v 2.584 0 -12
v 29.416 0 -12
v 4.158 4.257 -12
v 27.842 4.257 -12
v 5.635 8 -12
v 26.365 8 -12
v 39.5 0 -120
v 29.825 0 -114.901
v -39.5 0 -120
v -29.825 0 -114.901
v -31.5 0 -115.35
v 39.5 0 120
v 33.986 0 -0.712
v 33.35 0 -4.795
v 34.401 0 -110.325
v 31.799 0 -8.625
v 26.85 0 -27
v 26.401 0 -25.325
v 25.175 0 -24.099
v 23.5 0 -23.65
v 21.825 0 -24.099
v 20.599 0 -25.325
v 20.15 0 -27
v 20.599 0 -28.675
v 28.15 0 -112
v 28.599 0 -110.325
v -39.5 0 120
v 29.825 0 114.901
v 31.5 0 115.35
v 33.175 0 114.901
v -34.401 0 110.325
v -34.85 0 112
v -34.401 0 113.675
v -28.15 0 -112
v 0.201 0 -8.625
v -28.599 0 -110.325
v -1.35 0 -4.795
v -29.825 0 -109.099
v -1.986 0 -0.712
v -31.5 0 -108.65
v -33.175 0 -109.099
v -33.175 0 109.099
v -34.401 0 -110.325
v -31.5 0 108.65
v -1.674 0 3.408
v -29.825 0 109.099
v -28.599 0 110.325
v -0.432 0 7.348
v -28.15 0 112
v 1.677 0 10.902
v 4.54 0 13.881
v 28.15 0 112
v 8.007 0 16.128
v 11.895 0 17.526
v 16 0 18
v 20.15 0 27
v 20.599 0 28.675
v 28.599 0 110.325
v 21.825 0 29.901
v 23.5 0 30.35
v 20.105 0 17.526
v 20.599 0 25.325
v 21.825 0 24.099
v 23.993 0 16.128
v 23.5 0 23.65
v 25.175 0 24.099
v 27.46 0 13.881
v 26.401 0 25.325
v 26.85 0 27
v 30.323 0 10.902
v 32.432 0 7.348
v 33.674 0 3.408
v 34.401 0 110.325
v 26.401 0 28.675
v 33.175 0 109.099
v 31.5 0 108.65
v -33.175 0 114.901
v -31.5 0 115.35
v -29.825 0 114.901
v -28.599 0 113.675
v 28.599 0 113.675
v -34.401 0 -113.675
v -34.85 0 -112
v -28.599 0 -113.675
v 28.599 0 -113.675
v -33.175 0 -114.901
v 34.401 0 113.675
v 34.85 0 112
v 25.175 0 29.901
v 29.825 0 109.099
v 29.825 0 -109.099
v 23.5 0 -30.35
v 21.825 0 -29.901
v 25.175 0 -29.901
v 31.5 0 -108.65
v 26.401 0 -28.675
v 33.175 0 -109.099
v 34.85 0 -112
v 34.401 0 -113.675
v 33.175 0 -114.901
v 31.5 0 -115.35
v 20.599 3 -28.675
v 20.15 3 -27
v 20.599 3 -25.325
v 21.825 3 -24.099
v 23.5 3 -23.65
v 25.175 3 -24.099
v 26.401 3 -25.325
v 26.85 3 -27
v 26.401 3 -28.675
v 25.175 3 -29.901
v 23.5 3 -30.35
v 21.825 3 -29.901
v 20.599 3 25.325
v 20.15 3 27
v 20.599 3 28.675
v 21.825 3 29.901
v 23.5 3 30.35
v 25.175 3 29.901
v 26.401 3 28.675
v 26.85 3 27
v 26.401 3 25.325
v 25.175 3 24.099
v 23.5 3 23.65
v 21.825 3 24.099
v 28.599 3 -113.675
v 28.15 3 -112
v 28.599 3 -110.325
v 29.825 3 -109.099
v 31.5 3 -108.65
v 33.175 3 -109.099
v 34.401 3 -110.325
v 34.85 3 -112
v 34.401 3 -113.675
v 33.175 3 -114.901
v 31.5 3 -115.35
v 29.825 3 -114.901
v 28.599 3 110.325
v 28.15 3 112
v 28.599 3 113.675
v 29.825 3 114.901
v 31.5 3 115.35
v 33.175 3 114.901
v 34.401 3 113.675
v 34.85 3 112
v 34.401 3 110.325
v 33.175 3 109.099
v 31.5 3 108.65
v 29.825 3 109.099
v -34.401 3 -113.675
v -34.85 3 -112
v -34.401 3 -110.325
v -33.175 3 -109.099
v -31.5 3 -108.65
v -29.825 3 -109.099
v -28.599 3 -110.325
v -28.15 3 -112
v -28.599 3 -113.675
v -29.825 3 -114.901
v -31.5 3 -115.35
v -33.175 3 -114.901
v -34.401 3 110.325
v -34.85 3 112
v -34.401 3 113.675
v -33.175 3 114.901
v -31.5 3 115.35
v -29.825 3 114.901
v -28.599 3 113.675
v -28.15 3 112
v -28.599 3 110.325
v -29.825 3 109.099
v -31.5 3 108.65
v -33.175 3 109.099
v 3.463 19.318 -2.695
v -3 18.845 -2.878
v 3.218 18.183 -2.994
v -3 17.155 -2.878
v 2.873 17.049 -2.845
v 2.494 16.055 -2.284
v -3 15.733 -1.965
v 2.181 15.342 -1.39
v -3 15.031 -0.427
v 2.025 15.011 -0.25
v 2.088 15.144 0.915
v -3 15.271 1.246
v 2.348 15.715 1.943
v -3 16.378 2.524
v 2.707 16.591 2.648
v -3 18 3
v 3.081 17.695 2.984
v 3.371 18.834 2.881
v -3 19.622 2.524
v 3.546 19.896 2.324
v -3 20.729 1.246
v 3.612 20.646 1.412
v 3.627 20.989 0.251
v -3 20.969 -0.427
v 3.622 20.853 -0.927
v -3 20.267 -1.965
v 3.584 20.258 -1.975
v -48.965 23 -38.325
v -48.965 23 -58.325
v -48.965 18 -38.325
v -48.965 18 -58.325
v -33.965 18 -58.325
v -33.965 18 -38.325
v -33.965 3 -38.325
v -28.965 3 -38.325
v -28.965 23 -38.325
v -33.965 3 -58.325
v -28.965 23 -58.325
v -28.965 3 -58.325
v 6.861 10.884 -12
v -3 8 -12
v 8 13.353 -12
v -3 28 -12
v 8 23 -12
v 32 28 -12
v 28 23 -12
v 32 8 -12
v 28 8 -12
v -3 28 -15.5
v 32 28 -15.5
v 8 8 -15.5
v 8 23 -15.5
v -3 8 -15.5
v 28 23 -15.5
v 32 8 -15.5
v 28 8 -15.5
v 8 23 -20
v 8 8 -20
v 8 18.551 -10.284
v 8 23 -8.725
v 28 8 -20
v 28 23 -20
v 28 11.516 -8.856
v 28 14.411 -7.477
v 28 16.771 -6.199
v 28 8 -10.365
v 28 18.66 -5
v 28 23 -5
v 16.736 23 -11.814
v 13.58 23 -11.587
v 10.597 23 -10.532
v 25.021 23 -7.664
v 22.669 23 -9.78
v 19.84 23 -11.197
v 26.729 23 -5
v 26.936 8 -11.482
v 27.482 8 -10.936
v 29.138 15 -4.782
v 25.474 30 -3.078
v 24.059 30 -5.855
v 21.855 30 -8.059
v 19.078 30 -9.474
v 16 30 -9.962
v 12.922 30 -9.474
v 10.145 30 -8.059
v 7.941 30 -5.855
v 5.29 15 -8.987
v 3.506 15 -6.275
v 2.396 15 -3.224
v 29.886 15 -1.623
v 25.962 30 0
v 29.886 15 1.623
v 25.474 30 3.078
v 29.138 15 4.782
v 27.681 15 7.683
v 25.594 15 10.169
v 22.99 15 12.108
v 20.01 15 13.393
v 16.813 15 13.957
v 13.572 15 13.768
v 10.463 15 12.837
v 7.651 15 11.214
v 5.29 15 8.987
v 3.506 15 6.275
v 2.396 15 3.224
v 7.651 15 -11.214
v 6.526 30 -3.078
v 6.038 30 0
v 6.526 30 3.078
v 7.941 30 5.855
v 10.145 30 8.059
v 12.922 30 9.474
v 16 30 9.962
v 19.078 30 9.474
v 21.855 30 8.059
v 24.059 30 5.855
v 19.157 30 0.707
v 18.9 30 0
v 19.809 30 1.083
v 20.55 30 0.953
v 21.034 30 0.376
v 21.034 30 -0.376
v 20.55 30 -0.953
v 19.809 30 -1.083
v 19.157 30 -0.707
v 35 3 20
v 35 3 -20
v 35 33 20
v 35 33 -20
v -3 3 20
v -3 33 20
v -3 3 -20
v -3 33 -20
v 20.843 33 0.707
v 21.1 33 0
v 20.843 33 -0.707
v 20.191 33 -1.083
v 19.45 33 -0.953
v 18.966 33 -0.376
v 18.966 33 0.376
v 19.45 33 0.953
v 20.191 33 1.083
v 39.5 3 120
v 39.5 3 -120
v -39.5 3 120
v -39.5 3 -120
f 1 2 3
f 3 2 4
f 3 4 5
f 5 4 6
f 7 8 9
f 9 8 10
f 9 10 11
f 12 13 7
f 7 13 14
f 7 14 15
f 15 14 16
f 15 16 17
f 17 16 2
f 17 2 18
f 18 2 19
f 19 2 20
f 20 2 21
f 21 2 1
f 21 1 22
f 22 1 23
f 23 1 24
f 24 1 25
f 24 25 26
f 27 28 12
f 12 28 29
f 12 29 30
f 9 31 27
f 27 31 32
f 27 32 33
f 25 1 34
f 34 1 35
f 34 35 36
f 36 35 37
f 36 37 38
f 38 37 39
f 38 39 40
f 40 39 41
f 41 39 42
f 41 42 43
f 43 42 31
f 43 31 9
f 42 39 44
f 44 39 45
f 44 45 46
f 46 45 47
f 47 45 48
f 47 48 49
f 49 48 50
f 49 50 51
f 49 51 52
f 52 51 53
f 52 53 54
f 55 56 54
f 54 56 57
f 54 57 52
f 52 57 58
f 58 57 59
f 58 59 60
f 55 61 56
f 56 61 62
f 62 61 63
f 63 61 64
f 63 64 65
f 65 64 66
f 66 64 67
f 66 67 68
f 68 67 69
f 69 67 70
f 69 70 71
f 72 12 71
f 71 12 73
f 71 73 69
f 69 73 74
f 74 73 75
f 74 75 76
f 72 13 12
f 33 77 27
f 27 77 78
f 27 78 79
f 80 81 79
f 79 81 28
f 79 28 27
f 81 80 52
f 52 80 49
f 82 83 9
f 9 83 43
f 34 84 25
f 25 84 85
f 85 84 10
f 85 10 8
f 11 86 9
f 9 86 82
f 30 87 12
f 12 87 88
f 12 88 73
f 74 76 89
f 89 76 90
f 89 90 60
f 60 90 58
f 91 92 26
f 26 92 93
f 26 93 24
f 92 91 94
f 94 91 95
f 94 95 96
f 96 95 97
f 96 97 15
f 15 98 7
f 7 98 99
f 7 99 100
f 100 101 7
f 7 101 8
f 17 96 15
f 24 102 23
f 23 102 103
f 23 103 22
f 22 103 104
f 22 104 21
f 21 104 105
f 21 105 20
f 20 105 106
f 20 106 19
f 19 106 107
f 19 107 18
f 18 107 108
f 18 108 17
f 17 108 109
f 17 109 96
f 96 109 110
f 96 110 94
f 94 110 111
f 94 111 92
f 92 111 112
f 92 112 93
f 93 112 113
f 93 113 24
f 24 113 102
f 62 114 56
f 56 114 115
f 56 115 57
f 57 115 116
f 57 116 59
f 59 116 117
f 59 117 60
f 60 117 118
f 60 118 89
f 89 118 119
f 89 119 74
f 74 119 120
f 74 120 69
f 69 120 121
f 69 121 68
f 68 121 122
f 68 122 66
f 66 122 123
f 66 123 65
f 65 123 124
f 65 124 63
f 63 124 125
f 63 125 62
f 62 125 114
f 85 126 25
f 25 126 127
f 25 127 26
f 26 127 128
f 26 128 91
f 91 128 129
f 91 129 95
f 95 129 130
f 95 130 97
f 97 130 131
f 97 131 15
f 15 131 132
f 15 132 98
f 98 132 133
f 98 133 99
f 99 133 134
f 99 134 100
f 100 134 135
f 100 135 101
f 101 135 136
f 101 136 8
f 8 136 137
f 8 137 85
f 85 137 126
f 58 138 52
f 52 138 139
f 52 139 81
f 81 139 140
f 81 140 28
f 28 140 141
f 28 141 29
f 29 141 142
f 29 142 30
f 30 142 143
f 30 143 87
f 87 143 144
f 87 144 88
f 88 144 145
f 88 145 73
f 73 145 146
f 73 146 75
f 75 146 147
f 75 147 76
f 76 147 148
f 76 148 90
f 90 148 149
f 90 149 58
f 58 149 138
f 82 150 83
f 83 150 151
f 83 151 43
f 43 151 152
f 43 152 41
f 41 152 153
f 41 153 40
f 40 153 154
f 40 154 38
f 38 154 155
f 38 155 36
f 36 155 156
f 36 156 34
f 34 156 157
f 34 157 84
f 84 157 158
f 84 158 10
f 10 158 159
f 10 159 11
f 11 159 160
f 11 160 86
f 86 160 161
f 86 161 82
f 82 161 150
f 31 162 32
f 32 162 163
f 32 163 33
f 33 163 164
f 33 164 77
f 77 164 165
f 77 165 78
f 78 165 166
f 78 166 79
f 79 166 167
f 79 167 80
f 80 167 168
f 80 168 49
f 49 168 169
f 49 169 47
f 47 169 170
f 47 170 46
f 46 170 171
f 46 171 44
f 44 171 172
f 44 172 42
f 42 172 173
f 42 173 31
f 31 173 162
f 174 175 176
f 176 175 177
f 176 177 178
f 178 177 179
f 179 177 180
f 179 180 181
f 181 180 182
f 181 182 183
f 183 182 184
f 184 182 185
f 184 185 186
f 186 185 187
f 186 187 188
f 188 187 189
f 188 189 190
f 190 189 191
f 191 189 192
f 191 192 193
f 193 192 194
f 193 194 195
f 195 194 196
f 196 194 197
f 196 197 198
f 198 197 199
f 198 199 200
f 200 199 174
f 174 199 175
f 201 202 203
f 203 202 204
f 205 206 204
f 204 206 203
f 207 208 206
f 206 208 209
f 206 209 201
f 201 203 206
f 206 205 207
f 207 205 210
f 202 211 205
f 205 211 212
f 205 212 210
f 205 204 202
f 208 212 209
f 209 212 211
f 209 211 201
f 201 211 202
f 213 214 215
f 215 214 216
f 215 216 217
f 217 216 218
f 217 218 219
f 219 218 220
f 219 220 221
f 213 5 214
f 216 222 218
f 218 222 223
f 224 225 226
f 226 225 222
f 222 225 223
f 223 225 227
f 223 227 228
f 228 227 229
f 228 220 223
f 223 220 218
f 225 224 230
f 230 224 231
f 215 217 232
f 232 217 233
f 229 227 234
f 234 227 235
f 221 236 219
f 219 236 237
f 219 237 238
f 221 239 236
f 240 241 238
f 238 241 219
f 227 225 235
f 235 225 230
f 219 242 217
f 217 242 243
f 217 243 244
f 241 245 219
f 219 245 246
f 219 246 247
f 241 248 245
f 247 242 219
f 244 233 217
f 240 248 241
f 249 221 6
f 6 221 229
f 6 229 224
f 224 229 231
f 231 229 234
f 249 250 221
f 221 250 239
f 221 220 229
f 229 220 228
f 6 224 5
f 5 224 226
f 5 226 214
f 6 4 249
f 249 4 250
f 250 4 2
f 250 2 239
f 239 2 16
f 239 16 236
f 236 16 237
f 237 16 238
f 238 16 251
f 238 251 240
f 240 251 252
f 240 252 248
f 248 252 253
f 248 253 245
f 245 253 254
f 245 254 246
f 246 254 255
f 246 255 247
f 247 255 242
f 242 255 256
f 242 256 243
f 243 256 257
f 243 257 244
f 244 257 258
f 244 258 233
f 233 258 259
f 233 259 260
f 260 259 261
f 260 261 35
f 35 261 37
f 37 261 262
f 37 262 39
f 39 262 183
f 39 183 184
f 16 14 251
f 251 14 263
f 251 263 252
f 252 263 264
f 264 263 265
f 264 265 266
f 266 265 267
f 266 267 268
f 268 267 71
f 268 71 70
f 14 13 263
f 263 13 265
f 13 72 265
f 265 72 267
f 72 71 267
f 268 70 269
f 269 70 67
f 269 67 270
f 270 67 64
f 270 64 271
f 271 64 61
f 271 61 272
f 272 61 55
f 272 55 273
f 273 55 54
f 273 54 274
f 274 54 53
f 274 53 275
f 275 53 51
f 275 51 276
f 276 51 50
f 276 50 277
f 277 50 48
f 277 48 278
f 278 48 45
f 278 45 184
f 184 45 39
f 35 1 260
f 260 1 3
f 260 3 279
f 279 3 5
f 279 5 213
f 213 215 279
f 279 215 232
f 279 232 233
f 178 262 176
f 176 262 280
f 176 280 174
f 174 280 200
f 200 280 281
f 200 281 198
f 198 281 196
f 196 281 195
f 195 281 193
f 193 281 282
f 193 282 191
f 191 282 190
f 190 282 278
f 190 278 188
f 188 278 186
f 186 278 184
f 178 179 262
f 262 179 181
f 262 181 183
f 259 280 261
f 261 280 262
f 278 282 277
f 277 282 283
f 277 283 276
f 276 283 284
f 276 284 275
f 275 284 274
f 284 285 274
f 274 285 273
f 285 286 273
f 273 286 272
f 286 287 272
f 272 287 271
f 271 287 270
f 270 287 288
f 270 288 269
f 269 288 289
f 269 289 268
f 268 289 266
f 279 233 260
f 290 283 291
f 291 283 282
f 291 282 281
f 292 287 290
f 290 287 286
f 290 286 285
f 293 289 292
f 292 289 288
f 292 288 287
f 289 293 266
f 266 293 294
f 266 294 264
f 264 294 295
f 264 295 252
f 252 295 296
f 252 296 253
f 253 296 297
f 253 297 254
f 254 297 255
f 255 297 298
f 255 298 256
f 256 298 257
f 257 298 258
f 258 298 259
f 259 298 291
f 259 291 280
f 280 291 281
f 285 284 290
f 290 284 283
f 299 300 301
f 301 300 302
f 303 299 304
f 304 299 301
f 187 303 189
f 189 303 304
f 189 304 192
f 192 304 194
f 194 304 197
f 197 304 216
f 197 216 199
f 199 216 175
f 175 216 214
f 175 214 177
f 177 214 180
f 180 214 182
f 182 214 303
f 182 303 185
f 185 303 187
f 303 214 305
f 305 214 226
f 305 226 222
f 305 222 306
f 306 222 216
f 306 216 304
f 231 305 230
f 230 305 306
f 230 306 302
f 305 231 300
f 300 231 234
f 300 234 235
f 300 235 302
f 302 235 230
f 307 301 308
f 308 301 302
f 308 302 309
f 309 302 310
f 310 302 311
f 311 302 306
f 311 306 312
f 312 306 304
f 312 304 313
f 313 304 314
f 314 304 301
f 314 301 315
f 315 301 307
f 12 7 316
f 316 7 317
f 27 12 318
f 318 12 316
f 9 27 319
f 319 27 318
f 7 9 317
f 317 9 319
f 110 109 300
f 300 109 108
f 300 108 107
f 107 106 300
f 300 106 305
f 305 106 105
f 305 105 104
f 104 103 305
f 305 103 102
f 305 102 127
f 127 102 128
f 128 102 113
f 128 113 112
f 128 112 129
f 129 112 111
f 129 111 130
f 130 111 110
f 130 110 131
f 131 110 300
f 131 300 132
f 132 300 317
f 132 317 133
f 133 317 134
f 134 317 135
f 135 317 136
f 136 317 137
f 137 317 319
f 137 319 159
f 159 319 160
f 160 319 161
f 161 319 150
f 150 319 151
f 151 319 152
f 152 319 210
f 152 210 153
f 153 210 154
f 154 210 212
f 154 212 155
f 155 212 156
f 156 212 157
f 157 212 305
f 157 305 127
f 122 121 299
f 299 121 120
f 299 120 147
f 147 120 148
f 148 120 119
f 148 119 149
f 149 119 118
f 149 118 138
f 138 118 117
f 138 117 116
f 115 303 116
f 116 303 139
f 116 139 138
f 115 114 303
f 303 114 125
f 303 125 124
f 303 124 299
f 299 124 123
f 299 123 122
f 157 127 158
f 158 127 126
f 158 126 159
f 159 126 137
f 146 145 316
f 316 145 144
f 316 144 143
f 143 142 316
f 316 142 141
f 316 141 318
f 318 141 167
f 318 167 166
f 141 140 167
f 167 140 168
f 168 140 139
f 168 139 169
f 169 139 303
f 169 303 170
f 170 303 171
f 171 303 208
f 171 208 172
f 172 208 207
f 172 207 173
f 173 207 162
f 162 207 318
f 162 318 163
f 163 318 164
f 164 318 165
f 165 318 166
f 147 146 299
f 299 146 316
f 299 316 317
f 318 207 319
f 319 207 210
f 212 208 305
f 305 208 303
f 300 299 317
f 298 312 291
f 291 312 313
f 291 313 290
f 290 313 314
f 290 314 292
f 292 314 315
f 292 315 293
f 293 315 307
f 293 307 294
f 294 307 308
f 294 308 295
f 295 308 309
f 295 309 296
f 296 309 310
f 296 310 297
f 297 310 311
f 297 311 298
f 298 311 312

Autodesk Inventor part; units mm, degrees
ref_plane "YZ Plane" through (0, 0, 0) normal (1, 0, 0) x (0, 1, 0)
ref_plane "XZ Plane" through (0, 0, 0) normal (0, 1, 0) x (-1, 0, 0)
ref_plane "XY Plane" through (0, 0, 0) normal (0, 0, 1) x (1, 0, 0)
sketch "Sketch44" plane through (0, 0, 0) normal (0, 1, 0) x (-1, 0, 0)
  line L0 (-39.5, 120) -> (39.5, 120)
  line L1 (39.5, 120) -> (39.5, -120)
  line L2 (39.5, -120) -> (-39.5, -120)
  line L3 (-39.5, -120) -> (-39.5, 120)
  line L4 (-39.5, 120) -> (39.5, -120) construction
  line L5 (39.5, 120) -> (-39.5, -120) construction
  point P0 (0, 0)
  dimension "d138" = 79
  dimension "d139" = 240
extrude "Extrusion33" add sketch "Sketch44" along normal blind 3
sketch "Sketch45" plane through (0, 3, 0) normal (0, 1, 0) x (1, 0, 0)
  line L0 (35, -20) -> (-3, -20)
  line L1 (-3, -20) -> (-3, 20)
  line L2 (-3, 20) -> (35, 20)
  line L3 (35, 20) -> (35, -20)
  point P0 (0, 0)
  dimension "d142" = 38
  dimension "d143" = 40
extrude "Extrusion34" add sketch "Sketch45" along normal blind 30
sketch "Sketch47" plane through (0, 0, 0) normal (0, -1, 0) x (1, 0, 0)
  circle A0 centre (16, 0) radius 18
  point P0 (0, 0)
  dimension "d146" = 36
extrude "Extrusion35" cut sketch "Sketch47" against normal blind 30 draft -15
sketch "Sketch58" plane through (35, 3, -20) normal (0, 0, -1) x (-1, 0, 0)
  line L0 (7, 20) -> (27, 20)
  line L1 (27, 20) -> (27, 5)
  line L2 (27, 5) -> (7, 5)
  line L3 (7, 5) -> (7, 20)
  point P0 (35, -3)
  dimension "d156" = 20
  dimension "d157" = 15
extrude "Extrusion38" cut sketch "Sketch58" against normal blind 15
sketch "Sketch59" plane through (-3, 3, -20) normal (-1, 0, 0) x (0, 0, 1)
  line L0 (4.5, 25) -> (8, 25)
  line L1 (8, 25) -> (8, 5)
  line L2 (8, 5) -> (4.5, 5)
  line L3 (4.5, 5) -> (4.5, 25)
  point P0 (20, -3)
  dimension "d160" = 3.5
  dimension "d161" = 20
extrude "Extrusion39" cut sketch "Sketch59" against normal blind 35
sketch "Sketch60" plane through (0, 3, 0) normal (0, 1, 0) x (1, 0, 0)
  line L0 (-33.965, 38.3247) -> (-28.965, 38.3247)
  line L1 (-28.965, 38.3247) -> (-28.965, 58.3247)
  line L2 (-28.965, 58.3247) -> (-33.965, 58.3247)
  line L3 (-33.965, 58.3247) -> (-33.965, 38.3247)
  point P0 (0, 0)
  dimension "d164" = 5
  dimension "d165" = 20
extrude "Extrusion40" add sketch "Sketch60" along normal blind 20
sketch "Sketch61" plane through (0, 23, 0) normal (0, 1, 0) x (1, 0, 0)
  line L0 (-28.965, 38.3247) -> (-28.965, 58.3247) projected
  line L1 (-28.965, 38.3247) -> (-48.965, 38.3247)
  line L2 (-48.965, 38.3247) -> (-48.965, 58.3247)
  line L3 (-48.965, 58.3247) -> (-28.965, 58.3247)
  line L4 (-28.965, 58.3247) -> (-28.965, 38.3247)
  point P0 (0, 0)
  dimension "d168" = 20
  dimension "d169" = 20
extrude "Extrusion41" add sketch "Sketch61" against normal blind 5
sketch "Sketch65" plane through (-3, 3, -20) normal (-1, 0, 0) x (0, 0, 1)
  circle A0 centre (20, 15) radius 3
  point P0 (20, -3)
  dimension "d176" = 6
extrude "Extrusion43" cut sketch "Sketch65" against normal blind 10
sketch "Sketch68" plane through (0, 3, 0) normal (0, 1, 0) x (1, 0, 0)
  circle A0 centre (-31.5, -112) radius 3.35
  circle A1 centre (31.5, -112) radius 3.35
  circle A2 centre (-31.5, 112) radius 3.35
  circle A3 centre (31.5, 112) radius 3.35
  point P0 (0, 0)
  dimension "d192" = 6.7
  dimension "d193" = 6.7
  dimension "d194" = 6.7
  dimension "d195" = 6.7
extrude "Extrusion46" cut sketch "Sketch68" against normal through all
sketch "Sketch69" plane through (0, 3, 0) normal (0, 1, 0) x (1, 0, 0)
  circle A0 centre (23.5, -27) radius 3.35
  circle A1 centre (23.5, 27) radius 3.35
  point P0 (0, 0)
  dimension "d198" = 6.7
  dimension "d199" = 6.7
extrude "Extrusion47" cut sketch "Sketch69" against normal through all
sketch "Sketch70" plane through (0, 0, 0) normal (0, -1, 0) x (1, 0, 0)
  line L0 (-3, -12) -> (32, -12) projected
  line L1 (2.479, -12) -> (29.6644, -12)
  line L2 (29.6644, -12) -> (29.6644, -18.105)
  line L3 (29.6644, -18.105) -> (2.479, -18.105)
  line L4 (2.479, -18.105) -> (2.479, -12)
  point P0 (0, 0)
extrude "Extrusion48" add sketch "Sketch70" against normal blind 8
sketch "Sketch71" plane through (0, 33, 0) normal (0, 1, 0) x (1, 0, 0)
  point P0 (0, 0)
sketch "Sketch73" plane through (0, 33, 0) normal (0, 1, 0) x (1, 0, 0)
  circle A0 centre (20, 0) radius 1.1
  point P0 (0, 0)
  dimension "d207" = 2.2
extrude "Extrusion50" cut sketch "Sketch73" against normal blind 10
equation "\"d193\" = d192"
equation "\"d194\" = d192"
equation "\"d195\" = d192"
equation "\"d198\" = d192"
equation "\"d199\" = d192"
properties part number "liquid port_v09"
